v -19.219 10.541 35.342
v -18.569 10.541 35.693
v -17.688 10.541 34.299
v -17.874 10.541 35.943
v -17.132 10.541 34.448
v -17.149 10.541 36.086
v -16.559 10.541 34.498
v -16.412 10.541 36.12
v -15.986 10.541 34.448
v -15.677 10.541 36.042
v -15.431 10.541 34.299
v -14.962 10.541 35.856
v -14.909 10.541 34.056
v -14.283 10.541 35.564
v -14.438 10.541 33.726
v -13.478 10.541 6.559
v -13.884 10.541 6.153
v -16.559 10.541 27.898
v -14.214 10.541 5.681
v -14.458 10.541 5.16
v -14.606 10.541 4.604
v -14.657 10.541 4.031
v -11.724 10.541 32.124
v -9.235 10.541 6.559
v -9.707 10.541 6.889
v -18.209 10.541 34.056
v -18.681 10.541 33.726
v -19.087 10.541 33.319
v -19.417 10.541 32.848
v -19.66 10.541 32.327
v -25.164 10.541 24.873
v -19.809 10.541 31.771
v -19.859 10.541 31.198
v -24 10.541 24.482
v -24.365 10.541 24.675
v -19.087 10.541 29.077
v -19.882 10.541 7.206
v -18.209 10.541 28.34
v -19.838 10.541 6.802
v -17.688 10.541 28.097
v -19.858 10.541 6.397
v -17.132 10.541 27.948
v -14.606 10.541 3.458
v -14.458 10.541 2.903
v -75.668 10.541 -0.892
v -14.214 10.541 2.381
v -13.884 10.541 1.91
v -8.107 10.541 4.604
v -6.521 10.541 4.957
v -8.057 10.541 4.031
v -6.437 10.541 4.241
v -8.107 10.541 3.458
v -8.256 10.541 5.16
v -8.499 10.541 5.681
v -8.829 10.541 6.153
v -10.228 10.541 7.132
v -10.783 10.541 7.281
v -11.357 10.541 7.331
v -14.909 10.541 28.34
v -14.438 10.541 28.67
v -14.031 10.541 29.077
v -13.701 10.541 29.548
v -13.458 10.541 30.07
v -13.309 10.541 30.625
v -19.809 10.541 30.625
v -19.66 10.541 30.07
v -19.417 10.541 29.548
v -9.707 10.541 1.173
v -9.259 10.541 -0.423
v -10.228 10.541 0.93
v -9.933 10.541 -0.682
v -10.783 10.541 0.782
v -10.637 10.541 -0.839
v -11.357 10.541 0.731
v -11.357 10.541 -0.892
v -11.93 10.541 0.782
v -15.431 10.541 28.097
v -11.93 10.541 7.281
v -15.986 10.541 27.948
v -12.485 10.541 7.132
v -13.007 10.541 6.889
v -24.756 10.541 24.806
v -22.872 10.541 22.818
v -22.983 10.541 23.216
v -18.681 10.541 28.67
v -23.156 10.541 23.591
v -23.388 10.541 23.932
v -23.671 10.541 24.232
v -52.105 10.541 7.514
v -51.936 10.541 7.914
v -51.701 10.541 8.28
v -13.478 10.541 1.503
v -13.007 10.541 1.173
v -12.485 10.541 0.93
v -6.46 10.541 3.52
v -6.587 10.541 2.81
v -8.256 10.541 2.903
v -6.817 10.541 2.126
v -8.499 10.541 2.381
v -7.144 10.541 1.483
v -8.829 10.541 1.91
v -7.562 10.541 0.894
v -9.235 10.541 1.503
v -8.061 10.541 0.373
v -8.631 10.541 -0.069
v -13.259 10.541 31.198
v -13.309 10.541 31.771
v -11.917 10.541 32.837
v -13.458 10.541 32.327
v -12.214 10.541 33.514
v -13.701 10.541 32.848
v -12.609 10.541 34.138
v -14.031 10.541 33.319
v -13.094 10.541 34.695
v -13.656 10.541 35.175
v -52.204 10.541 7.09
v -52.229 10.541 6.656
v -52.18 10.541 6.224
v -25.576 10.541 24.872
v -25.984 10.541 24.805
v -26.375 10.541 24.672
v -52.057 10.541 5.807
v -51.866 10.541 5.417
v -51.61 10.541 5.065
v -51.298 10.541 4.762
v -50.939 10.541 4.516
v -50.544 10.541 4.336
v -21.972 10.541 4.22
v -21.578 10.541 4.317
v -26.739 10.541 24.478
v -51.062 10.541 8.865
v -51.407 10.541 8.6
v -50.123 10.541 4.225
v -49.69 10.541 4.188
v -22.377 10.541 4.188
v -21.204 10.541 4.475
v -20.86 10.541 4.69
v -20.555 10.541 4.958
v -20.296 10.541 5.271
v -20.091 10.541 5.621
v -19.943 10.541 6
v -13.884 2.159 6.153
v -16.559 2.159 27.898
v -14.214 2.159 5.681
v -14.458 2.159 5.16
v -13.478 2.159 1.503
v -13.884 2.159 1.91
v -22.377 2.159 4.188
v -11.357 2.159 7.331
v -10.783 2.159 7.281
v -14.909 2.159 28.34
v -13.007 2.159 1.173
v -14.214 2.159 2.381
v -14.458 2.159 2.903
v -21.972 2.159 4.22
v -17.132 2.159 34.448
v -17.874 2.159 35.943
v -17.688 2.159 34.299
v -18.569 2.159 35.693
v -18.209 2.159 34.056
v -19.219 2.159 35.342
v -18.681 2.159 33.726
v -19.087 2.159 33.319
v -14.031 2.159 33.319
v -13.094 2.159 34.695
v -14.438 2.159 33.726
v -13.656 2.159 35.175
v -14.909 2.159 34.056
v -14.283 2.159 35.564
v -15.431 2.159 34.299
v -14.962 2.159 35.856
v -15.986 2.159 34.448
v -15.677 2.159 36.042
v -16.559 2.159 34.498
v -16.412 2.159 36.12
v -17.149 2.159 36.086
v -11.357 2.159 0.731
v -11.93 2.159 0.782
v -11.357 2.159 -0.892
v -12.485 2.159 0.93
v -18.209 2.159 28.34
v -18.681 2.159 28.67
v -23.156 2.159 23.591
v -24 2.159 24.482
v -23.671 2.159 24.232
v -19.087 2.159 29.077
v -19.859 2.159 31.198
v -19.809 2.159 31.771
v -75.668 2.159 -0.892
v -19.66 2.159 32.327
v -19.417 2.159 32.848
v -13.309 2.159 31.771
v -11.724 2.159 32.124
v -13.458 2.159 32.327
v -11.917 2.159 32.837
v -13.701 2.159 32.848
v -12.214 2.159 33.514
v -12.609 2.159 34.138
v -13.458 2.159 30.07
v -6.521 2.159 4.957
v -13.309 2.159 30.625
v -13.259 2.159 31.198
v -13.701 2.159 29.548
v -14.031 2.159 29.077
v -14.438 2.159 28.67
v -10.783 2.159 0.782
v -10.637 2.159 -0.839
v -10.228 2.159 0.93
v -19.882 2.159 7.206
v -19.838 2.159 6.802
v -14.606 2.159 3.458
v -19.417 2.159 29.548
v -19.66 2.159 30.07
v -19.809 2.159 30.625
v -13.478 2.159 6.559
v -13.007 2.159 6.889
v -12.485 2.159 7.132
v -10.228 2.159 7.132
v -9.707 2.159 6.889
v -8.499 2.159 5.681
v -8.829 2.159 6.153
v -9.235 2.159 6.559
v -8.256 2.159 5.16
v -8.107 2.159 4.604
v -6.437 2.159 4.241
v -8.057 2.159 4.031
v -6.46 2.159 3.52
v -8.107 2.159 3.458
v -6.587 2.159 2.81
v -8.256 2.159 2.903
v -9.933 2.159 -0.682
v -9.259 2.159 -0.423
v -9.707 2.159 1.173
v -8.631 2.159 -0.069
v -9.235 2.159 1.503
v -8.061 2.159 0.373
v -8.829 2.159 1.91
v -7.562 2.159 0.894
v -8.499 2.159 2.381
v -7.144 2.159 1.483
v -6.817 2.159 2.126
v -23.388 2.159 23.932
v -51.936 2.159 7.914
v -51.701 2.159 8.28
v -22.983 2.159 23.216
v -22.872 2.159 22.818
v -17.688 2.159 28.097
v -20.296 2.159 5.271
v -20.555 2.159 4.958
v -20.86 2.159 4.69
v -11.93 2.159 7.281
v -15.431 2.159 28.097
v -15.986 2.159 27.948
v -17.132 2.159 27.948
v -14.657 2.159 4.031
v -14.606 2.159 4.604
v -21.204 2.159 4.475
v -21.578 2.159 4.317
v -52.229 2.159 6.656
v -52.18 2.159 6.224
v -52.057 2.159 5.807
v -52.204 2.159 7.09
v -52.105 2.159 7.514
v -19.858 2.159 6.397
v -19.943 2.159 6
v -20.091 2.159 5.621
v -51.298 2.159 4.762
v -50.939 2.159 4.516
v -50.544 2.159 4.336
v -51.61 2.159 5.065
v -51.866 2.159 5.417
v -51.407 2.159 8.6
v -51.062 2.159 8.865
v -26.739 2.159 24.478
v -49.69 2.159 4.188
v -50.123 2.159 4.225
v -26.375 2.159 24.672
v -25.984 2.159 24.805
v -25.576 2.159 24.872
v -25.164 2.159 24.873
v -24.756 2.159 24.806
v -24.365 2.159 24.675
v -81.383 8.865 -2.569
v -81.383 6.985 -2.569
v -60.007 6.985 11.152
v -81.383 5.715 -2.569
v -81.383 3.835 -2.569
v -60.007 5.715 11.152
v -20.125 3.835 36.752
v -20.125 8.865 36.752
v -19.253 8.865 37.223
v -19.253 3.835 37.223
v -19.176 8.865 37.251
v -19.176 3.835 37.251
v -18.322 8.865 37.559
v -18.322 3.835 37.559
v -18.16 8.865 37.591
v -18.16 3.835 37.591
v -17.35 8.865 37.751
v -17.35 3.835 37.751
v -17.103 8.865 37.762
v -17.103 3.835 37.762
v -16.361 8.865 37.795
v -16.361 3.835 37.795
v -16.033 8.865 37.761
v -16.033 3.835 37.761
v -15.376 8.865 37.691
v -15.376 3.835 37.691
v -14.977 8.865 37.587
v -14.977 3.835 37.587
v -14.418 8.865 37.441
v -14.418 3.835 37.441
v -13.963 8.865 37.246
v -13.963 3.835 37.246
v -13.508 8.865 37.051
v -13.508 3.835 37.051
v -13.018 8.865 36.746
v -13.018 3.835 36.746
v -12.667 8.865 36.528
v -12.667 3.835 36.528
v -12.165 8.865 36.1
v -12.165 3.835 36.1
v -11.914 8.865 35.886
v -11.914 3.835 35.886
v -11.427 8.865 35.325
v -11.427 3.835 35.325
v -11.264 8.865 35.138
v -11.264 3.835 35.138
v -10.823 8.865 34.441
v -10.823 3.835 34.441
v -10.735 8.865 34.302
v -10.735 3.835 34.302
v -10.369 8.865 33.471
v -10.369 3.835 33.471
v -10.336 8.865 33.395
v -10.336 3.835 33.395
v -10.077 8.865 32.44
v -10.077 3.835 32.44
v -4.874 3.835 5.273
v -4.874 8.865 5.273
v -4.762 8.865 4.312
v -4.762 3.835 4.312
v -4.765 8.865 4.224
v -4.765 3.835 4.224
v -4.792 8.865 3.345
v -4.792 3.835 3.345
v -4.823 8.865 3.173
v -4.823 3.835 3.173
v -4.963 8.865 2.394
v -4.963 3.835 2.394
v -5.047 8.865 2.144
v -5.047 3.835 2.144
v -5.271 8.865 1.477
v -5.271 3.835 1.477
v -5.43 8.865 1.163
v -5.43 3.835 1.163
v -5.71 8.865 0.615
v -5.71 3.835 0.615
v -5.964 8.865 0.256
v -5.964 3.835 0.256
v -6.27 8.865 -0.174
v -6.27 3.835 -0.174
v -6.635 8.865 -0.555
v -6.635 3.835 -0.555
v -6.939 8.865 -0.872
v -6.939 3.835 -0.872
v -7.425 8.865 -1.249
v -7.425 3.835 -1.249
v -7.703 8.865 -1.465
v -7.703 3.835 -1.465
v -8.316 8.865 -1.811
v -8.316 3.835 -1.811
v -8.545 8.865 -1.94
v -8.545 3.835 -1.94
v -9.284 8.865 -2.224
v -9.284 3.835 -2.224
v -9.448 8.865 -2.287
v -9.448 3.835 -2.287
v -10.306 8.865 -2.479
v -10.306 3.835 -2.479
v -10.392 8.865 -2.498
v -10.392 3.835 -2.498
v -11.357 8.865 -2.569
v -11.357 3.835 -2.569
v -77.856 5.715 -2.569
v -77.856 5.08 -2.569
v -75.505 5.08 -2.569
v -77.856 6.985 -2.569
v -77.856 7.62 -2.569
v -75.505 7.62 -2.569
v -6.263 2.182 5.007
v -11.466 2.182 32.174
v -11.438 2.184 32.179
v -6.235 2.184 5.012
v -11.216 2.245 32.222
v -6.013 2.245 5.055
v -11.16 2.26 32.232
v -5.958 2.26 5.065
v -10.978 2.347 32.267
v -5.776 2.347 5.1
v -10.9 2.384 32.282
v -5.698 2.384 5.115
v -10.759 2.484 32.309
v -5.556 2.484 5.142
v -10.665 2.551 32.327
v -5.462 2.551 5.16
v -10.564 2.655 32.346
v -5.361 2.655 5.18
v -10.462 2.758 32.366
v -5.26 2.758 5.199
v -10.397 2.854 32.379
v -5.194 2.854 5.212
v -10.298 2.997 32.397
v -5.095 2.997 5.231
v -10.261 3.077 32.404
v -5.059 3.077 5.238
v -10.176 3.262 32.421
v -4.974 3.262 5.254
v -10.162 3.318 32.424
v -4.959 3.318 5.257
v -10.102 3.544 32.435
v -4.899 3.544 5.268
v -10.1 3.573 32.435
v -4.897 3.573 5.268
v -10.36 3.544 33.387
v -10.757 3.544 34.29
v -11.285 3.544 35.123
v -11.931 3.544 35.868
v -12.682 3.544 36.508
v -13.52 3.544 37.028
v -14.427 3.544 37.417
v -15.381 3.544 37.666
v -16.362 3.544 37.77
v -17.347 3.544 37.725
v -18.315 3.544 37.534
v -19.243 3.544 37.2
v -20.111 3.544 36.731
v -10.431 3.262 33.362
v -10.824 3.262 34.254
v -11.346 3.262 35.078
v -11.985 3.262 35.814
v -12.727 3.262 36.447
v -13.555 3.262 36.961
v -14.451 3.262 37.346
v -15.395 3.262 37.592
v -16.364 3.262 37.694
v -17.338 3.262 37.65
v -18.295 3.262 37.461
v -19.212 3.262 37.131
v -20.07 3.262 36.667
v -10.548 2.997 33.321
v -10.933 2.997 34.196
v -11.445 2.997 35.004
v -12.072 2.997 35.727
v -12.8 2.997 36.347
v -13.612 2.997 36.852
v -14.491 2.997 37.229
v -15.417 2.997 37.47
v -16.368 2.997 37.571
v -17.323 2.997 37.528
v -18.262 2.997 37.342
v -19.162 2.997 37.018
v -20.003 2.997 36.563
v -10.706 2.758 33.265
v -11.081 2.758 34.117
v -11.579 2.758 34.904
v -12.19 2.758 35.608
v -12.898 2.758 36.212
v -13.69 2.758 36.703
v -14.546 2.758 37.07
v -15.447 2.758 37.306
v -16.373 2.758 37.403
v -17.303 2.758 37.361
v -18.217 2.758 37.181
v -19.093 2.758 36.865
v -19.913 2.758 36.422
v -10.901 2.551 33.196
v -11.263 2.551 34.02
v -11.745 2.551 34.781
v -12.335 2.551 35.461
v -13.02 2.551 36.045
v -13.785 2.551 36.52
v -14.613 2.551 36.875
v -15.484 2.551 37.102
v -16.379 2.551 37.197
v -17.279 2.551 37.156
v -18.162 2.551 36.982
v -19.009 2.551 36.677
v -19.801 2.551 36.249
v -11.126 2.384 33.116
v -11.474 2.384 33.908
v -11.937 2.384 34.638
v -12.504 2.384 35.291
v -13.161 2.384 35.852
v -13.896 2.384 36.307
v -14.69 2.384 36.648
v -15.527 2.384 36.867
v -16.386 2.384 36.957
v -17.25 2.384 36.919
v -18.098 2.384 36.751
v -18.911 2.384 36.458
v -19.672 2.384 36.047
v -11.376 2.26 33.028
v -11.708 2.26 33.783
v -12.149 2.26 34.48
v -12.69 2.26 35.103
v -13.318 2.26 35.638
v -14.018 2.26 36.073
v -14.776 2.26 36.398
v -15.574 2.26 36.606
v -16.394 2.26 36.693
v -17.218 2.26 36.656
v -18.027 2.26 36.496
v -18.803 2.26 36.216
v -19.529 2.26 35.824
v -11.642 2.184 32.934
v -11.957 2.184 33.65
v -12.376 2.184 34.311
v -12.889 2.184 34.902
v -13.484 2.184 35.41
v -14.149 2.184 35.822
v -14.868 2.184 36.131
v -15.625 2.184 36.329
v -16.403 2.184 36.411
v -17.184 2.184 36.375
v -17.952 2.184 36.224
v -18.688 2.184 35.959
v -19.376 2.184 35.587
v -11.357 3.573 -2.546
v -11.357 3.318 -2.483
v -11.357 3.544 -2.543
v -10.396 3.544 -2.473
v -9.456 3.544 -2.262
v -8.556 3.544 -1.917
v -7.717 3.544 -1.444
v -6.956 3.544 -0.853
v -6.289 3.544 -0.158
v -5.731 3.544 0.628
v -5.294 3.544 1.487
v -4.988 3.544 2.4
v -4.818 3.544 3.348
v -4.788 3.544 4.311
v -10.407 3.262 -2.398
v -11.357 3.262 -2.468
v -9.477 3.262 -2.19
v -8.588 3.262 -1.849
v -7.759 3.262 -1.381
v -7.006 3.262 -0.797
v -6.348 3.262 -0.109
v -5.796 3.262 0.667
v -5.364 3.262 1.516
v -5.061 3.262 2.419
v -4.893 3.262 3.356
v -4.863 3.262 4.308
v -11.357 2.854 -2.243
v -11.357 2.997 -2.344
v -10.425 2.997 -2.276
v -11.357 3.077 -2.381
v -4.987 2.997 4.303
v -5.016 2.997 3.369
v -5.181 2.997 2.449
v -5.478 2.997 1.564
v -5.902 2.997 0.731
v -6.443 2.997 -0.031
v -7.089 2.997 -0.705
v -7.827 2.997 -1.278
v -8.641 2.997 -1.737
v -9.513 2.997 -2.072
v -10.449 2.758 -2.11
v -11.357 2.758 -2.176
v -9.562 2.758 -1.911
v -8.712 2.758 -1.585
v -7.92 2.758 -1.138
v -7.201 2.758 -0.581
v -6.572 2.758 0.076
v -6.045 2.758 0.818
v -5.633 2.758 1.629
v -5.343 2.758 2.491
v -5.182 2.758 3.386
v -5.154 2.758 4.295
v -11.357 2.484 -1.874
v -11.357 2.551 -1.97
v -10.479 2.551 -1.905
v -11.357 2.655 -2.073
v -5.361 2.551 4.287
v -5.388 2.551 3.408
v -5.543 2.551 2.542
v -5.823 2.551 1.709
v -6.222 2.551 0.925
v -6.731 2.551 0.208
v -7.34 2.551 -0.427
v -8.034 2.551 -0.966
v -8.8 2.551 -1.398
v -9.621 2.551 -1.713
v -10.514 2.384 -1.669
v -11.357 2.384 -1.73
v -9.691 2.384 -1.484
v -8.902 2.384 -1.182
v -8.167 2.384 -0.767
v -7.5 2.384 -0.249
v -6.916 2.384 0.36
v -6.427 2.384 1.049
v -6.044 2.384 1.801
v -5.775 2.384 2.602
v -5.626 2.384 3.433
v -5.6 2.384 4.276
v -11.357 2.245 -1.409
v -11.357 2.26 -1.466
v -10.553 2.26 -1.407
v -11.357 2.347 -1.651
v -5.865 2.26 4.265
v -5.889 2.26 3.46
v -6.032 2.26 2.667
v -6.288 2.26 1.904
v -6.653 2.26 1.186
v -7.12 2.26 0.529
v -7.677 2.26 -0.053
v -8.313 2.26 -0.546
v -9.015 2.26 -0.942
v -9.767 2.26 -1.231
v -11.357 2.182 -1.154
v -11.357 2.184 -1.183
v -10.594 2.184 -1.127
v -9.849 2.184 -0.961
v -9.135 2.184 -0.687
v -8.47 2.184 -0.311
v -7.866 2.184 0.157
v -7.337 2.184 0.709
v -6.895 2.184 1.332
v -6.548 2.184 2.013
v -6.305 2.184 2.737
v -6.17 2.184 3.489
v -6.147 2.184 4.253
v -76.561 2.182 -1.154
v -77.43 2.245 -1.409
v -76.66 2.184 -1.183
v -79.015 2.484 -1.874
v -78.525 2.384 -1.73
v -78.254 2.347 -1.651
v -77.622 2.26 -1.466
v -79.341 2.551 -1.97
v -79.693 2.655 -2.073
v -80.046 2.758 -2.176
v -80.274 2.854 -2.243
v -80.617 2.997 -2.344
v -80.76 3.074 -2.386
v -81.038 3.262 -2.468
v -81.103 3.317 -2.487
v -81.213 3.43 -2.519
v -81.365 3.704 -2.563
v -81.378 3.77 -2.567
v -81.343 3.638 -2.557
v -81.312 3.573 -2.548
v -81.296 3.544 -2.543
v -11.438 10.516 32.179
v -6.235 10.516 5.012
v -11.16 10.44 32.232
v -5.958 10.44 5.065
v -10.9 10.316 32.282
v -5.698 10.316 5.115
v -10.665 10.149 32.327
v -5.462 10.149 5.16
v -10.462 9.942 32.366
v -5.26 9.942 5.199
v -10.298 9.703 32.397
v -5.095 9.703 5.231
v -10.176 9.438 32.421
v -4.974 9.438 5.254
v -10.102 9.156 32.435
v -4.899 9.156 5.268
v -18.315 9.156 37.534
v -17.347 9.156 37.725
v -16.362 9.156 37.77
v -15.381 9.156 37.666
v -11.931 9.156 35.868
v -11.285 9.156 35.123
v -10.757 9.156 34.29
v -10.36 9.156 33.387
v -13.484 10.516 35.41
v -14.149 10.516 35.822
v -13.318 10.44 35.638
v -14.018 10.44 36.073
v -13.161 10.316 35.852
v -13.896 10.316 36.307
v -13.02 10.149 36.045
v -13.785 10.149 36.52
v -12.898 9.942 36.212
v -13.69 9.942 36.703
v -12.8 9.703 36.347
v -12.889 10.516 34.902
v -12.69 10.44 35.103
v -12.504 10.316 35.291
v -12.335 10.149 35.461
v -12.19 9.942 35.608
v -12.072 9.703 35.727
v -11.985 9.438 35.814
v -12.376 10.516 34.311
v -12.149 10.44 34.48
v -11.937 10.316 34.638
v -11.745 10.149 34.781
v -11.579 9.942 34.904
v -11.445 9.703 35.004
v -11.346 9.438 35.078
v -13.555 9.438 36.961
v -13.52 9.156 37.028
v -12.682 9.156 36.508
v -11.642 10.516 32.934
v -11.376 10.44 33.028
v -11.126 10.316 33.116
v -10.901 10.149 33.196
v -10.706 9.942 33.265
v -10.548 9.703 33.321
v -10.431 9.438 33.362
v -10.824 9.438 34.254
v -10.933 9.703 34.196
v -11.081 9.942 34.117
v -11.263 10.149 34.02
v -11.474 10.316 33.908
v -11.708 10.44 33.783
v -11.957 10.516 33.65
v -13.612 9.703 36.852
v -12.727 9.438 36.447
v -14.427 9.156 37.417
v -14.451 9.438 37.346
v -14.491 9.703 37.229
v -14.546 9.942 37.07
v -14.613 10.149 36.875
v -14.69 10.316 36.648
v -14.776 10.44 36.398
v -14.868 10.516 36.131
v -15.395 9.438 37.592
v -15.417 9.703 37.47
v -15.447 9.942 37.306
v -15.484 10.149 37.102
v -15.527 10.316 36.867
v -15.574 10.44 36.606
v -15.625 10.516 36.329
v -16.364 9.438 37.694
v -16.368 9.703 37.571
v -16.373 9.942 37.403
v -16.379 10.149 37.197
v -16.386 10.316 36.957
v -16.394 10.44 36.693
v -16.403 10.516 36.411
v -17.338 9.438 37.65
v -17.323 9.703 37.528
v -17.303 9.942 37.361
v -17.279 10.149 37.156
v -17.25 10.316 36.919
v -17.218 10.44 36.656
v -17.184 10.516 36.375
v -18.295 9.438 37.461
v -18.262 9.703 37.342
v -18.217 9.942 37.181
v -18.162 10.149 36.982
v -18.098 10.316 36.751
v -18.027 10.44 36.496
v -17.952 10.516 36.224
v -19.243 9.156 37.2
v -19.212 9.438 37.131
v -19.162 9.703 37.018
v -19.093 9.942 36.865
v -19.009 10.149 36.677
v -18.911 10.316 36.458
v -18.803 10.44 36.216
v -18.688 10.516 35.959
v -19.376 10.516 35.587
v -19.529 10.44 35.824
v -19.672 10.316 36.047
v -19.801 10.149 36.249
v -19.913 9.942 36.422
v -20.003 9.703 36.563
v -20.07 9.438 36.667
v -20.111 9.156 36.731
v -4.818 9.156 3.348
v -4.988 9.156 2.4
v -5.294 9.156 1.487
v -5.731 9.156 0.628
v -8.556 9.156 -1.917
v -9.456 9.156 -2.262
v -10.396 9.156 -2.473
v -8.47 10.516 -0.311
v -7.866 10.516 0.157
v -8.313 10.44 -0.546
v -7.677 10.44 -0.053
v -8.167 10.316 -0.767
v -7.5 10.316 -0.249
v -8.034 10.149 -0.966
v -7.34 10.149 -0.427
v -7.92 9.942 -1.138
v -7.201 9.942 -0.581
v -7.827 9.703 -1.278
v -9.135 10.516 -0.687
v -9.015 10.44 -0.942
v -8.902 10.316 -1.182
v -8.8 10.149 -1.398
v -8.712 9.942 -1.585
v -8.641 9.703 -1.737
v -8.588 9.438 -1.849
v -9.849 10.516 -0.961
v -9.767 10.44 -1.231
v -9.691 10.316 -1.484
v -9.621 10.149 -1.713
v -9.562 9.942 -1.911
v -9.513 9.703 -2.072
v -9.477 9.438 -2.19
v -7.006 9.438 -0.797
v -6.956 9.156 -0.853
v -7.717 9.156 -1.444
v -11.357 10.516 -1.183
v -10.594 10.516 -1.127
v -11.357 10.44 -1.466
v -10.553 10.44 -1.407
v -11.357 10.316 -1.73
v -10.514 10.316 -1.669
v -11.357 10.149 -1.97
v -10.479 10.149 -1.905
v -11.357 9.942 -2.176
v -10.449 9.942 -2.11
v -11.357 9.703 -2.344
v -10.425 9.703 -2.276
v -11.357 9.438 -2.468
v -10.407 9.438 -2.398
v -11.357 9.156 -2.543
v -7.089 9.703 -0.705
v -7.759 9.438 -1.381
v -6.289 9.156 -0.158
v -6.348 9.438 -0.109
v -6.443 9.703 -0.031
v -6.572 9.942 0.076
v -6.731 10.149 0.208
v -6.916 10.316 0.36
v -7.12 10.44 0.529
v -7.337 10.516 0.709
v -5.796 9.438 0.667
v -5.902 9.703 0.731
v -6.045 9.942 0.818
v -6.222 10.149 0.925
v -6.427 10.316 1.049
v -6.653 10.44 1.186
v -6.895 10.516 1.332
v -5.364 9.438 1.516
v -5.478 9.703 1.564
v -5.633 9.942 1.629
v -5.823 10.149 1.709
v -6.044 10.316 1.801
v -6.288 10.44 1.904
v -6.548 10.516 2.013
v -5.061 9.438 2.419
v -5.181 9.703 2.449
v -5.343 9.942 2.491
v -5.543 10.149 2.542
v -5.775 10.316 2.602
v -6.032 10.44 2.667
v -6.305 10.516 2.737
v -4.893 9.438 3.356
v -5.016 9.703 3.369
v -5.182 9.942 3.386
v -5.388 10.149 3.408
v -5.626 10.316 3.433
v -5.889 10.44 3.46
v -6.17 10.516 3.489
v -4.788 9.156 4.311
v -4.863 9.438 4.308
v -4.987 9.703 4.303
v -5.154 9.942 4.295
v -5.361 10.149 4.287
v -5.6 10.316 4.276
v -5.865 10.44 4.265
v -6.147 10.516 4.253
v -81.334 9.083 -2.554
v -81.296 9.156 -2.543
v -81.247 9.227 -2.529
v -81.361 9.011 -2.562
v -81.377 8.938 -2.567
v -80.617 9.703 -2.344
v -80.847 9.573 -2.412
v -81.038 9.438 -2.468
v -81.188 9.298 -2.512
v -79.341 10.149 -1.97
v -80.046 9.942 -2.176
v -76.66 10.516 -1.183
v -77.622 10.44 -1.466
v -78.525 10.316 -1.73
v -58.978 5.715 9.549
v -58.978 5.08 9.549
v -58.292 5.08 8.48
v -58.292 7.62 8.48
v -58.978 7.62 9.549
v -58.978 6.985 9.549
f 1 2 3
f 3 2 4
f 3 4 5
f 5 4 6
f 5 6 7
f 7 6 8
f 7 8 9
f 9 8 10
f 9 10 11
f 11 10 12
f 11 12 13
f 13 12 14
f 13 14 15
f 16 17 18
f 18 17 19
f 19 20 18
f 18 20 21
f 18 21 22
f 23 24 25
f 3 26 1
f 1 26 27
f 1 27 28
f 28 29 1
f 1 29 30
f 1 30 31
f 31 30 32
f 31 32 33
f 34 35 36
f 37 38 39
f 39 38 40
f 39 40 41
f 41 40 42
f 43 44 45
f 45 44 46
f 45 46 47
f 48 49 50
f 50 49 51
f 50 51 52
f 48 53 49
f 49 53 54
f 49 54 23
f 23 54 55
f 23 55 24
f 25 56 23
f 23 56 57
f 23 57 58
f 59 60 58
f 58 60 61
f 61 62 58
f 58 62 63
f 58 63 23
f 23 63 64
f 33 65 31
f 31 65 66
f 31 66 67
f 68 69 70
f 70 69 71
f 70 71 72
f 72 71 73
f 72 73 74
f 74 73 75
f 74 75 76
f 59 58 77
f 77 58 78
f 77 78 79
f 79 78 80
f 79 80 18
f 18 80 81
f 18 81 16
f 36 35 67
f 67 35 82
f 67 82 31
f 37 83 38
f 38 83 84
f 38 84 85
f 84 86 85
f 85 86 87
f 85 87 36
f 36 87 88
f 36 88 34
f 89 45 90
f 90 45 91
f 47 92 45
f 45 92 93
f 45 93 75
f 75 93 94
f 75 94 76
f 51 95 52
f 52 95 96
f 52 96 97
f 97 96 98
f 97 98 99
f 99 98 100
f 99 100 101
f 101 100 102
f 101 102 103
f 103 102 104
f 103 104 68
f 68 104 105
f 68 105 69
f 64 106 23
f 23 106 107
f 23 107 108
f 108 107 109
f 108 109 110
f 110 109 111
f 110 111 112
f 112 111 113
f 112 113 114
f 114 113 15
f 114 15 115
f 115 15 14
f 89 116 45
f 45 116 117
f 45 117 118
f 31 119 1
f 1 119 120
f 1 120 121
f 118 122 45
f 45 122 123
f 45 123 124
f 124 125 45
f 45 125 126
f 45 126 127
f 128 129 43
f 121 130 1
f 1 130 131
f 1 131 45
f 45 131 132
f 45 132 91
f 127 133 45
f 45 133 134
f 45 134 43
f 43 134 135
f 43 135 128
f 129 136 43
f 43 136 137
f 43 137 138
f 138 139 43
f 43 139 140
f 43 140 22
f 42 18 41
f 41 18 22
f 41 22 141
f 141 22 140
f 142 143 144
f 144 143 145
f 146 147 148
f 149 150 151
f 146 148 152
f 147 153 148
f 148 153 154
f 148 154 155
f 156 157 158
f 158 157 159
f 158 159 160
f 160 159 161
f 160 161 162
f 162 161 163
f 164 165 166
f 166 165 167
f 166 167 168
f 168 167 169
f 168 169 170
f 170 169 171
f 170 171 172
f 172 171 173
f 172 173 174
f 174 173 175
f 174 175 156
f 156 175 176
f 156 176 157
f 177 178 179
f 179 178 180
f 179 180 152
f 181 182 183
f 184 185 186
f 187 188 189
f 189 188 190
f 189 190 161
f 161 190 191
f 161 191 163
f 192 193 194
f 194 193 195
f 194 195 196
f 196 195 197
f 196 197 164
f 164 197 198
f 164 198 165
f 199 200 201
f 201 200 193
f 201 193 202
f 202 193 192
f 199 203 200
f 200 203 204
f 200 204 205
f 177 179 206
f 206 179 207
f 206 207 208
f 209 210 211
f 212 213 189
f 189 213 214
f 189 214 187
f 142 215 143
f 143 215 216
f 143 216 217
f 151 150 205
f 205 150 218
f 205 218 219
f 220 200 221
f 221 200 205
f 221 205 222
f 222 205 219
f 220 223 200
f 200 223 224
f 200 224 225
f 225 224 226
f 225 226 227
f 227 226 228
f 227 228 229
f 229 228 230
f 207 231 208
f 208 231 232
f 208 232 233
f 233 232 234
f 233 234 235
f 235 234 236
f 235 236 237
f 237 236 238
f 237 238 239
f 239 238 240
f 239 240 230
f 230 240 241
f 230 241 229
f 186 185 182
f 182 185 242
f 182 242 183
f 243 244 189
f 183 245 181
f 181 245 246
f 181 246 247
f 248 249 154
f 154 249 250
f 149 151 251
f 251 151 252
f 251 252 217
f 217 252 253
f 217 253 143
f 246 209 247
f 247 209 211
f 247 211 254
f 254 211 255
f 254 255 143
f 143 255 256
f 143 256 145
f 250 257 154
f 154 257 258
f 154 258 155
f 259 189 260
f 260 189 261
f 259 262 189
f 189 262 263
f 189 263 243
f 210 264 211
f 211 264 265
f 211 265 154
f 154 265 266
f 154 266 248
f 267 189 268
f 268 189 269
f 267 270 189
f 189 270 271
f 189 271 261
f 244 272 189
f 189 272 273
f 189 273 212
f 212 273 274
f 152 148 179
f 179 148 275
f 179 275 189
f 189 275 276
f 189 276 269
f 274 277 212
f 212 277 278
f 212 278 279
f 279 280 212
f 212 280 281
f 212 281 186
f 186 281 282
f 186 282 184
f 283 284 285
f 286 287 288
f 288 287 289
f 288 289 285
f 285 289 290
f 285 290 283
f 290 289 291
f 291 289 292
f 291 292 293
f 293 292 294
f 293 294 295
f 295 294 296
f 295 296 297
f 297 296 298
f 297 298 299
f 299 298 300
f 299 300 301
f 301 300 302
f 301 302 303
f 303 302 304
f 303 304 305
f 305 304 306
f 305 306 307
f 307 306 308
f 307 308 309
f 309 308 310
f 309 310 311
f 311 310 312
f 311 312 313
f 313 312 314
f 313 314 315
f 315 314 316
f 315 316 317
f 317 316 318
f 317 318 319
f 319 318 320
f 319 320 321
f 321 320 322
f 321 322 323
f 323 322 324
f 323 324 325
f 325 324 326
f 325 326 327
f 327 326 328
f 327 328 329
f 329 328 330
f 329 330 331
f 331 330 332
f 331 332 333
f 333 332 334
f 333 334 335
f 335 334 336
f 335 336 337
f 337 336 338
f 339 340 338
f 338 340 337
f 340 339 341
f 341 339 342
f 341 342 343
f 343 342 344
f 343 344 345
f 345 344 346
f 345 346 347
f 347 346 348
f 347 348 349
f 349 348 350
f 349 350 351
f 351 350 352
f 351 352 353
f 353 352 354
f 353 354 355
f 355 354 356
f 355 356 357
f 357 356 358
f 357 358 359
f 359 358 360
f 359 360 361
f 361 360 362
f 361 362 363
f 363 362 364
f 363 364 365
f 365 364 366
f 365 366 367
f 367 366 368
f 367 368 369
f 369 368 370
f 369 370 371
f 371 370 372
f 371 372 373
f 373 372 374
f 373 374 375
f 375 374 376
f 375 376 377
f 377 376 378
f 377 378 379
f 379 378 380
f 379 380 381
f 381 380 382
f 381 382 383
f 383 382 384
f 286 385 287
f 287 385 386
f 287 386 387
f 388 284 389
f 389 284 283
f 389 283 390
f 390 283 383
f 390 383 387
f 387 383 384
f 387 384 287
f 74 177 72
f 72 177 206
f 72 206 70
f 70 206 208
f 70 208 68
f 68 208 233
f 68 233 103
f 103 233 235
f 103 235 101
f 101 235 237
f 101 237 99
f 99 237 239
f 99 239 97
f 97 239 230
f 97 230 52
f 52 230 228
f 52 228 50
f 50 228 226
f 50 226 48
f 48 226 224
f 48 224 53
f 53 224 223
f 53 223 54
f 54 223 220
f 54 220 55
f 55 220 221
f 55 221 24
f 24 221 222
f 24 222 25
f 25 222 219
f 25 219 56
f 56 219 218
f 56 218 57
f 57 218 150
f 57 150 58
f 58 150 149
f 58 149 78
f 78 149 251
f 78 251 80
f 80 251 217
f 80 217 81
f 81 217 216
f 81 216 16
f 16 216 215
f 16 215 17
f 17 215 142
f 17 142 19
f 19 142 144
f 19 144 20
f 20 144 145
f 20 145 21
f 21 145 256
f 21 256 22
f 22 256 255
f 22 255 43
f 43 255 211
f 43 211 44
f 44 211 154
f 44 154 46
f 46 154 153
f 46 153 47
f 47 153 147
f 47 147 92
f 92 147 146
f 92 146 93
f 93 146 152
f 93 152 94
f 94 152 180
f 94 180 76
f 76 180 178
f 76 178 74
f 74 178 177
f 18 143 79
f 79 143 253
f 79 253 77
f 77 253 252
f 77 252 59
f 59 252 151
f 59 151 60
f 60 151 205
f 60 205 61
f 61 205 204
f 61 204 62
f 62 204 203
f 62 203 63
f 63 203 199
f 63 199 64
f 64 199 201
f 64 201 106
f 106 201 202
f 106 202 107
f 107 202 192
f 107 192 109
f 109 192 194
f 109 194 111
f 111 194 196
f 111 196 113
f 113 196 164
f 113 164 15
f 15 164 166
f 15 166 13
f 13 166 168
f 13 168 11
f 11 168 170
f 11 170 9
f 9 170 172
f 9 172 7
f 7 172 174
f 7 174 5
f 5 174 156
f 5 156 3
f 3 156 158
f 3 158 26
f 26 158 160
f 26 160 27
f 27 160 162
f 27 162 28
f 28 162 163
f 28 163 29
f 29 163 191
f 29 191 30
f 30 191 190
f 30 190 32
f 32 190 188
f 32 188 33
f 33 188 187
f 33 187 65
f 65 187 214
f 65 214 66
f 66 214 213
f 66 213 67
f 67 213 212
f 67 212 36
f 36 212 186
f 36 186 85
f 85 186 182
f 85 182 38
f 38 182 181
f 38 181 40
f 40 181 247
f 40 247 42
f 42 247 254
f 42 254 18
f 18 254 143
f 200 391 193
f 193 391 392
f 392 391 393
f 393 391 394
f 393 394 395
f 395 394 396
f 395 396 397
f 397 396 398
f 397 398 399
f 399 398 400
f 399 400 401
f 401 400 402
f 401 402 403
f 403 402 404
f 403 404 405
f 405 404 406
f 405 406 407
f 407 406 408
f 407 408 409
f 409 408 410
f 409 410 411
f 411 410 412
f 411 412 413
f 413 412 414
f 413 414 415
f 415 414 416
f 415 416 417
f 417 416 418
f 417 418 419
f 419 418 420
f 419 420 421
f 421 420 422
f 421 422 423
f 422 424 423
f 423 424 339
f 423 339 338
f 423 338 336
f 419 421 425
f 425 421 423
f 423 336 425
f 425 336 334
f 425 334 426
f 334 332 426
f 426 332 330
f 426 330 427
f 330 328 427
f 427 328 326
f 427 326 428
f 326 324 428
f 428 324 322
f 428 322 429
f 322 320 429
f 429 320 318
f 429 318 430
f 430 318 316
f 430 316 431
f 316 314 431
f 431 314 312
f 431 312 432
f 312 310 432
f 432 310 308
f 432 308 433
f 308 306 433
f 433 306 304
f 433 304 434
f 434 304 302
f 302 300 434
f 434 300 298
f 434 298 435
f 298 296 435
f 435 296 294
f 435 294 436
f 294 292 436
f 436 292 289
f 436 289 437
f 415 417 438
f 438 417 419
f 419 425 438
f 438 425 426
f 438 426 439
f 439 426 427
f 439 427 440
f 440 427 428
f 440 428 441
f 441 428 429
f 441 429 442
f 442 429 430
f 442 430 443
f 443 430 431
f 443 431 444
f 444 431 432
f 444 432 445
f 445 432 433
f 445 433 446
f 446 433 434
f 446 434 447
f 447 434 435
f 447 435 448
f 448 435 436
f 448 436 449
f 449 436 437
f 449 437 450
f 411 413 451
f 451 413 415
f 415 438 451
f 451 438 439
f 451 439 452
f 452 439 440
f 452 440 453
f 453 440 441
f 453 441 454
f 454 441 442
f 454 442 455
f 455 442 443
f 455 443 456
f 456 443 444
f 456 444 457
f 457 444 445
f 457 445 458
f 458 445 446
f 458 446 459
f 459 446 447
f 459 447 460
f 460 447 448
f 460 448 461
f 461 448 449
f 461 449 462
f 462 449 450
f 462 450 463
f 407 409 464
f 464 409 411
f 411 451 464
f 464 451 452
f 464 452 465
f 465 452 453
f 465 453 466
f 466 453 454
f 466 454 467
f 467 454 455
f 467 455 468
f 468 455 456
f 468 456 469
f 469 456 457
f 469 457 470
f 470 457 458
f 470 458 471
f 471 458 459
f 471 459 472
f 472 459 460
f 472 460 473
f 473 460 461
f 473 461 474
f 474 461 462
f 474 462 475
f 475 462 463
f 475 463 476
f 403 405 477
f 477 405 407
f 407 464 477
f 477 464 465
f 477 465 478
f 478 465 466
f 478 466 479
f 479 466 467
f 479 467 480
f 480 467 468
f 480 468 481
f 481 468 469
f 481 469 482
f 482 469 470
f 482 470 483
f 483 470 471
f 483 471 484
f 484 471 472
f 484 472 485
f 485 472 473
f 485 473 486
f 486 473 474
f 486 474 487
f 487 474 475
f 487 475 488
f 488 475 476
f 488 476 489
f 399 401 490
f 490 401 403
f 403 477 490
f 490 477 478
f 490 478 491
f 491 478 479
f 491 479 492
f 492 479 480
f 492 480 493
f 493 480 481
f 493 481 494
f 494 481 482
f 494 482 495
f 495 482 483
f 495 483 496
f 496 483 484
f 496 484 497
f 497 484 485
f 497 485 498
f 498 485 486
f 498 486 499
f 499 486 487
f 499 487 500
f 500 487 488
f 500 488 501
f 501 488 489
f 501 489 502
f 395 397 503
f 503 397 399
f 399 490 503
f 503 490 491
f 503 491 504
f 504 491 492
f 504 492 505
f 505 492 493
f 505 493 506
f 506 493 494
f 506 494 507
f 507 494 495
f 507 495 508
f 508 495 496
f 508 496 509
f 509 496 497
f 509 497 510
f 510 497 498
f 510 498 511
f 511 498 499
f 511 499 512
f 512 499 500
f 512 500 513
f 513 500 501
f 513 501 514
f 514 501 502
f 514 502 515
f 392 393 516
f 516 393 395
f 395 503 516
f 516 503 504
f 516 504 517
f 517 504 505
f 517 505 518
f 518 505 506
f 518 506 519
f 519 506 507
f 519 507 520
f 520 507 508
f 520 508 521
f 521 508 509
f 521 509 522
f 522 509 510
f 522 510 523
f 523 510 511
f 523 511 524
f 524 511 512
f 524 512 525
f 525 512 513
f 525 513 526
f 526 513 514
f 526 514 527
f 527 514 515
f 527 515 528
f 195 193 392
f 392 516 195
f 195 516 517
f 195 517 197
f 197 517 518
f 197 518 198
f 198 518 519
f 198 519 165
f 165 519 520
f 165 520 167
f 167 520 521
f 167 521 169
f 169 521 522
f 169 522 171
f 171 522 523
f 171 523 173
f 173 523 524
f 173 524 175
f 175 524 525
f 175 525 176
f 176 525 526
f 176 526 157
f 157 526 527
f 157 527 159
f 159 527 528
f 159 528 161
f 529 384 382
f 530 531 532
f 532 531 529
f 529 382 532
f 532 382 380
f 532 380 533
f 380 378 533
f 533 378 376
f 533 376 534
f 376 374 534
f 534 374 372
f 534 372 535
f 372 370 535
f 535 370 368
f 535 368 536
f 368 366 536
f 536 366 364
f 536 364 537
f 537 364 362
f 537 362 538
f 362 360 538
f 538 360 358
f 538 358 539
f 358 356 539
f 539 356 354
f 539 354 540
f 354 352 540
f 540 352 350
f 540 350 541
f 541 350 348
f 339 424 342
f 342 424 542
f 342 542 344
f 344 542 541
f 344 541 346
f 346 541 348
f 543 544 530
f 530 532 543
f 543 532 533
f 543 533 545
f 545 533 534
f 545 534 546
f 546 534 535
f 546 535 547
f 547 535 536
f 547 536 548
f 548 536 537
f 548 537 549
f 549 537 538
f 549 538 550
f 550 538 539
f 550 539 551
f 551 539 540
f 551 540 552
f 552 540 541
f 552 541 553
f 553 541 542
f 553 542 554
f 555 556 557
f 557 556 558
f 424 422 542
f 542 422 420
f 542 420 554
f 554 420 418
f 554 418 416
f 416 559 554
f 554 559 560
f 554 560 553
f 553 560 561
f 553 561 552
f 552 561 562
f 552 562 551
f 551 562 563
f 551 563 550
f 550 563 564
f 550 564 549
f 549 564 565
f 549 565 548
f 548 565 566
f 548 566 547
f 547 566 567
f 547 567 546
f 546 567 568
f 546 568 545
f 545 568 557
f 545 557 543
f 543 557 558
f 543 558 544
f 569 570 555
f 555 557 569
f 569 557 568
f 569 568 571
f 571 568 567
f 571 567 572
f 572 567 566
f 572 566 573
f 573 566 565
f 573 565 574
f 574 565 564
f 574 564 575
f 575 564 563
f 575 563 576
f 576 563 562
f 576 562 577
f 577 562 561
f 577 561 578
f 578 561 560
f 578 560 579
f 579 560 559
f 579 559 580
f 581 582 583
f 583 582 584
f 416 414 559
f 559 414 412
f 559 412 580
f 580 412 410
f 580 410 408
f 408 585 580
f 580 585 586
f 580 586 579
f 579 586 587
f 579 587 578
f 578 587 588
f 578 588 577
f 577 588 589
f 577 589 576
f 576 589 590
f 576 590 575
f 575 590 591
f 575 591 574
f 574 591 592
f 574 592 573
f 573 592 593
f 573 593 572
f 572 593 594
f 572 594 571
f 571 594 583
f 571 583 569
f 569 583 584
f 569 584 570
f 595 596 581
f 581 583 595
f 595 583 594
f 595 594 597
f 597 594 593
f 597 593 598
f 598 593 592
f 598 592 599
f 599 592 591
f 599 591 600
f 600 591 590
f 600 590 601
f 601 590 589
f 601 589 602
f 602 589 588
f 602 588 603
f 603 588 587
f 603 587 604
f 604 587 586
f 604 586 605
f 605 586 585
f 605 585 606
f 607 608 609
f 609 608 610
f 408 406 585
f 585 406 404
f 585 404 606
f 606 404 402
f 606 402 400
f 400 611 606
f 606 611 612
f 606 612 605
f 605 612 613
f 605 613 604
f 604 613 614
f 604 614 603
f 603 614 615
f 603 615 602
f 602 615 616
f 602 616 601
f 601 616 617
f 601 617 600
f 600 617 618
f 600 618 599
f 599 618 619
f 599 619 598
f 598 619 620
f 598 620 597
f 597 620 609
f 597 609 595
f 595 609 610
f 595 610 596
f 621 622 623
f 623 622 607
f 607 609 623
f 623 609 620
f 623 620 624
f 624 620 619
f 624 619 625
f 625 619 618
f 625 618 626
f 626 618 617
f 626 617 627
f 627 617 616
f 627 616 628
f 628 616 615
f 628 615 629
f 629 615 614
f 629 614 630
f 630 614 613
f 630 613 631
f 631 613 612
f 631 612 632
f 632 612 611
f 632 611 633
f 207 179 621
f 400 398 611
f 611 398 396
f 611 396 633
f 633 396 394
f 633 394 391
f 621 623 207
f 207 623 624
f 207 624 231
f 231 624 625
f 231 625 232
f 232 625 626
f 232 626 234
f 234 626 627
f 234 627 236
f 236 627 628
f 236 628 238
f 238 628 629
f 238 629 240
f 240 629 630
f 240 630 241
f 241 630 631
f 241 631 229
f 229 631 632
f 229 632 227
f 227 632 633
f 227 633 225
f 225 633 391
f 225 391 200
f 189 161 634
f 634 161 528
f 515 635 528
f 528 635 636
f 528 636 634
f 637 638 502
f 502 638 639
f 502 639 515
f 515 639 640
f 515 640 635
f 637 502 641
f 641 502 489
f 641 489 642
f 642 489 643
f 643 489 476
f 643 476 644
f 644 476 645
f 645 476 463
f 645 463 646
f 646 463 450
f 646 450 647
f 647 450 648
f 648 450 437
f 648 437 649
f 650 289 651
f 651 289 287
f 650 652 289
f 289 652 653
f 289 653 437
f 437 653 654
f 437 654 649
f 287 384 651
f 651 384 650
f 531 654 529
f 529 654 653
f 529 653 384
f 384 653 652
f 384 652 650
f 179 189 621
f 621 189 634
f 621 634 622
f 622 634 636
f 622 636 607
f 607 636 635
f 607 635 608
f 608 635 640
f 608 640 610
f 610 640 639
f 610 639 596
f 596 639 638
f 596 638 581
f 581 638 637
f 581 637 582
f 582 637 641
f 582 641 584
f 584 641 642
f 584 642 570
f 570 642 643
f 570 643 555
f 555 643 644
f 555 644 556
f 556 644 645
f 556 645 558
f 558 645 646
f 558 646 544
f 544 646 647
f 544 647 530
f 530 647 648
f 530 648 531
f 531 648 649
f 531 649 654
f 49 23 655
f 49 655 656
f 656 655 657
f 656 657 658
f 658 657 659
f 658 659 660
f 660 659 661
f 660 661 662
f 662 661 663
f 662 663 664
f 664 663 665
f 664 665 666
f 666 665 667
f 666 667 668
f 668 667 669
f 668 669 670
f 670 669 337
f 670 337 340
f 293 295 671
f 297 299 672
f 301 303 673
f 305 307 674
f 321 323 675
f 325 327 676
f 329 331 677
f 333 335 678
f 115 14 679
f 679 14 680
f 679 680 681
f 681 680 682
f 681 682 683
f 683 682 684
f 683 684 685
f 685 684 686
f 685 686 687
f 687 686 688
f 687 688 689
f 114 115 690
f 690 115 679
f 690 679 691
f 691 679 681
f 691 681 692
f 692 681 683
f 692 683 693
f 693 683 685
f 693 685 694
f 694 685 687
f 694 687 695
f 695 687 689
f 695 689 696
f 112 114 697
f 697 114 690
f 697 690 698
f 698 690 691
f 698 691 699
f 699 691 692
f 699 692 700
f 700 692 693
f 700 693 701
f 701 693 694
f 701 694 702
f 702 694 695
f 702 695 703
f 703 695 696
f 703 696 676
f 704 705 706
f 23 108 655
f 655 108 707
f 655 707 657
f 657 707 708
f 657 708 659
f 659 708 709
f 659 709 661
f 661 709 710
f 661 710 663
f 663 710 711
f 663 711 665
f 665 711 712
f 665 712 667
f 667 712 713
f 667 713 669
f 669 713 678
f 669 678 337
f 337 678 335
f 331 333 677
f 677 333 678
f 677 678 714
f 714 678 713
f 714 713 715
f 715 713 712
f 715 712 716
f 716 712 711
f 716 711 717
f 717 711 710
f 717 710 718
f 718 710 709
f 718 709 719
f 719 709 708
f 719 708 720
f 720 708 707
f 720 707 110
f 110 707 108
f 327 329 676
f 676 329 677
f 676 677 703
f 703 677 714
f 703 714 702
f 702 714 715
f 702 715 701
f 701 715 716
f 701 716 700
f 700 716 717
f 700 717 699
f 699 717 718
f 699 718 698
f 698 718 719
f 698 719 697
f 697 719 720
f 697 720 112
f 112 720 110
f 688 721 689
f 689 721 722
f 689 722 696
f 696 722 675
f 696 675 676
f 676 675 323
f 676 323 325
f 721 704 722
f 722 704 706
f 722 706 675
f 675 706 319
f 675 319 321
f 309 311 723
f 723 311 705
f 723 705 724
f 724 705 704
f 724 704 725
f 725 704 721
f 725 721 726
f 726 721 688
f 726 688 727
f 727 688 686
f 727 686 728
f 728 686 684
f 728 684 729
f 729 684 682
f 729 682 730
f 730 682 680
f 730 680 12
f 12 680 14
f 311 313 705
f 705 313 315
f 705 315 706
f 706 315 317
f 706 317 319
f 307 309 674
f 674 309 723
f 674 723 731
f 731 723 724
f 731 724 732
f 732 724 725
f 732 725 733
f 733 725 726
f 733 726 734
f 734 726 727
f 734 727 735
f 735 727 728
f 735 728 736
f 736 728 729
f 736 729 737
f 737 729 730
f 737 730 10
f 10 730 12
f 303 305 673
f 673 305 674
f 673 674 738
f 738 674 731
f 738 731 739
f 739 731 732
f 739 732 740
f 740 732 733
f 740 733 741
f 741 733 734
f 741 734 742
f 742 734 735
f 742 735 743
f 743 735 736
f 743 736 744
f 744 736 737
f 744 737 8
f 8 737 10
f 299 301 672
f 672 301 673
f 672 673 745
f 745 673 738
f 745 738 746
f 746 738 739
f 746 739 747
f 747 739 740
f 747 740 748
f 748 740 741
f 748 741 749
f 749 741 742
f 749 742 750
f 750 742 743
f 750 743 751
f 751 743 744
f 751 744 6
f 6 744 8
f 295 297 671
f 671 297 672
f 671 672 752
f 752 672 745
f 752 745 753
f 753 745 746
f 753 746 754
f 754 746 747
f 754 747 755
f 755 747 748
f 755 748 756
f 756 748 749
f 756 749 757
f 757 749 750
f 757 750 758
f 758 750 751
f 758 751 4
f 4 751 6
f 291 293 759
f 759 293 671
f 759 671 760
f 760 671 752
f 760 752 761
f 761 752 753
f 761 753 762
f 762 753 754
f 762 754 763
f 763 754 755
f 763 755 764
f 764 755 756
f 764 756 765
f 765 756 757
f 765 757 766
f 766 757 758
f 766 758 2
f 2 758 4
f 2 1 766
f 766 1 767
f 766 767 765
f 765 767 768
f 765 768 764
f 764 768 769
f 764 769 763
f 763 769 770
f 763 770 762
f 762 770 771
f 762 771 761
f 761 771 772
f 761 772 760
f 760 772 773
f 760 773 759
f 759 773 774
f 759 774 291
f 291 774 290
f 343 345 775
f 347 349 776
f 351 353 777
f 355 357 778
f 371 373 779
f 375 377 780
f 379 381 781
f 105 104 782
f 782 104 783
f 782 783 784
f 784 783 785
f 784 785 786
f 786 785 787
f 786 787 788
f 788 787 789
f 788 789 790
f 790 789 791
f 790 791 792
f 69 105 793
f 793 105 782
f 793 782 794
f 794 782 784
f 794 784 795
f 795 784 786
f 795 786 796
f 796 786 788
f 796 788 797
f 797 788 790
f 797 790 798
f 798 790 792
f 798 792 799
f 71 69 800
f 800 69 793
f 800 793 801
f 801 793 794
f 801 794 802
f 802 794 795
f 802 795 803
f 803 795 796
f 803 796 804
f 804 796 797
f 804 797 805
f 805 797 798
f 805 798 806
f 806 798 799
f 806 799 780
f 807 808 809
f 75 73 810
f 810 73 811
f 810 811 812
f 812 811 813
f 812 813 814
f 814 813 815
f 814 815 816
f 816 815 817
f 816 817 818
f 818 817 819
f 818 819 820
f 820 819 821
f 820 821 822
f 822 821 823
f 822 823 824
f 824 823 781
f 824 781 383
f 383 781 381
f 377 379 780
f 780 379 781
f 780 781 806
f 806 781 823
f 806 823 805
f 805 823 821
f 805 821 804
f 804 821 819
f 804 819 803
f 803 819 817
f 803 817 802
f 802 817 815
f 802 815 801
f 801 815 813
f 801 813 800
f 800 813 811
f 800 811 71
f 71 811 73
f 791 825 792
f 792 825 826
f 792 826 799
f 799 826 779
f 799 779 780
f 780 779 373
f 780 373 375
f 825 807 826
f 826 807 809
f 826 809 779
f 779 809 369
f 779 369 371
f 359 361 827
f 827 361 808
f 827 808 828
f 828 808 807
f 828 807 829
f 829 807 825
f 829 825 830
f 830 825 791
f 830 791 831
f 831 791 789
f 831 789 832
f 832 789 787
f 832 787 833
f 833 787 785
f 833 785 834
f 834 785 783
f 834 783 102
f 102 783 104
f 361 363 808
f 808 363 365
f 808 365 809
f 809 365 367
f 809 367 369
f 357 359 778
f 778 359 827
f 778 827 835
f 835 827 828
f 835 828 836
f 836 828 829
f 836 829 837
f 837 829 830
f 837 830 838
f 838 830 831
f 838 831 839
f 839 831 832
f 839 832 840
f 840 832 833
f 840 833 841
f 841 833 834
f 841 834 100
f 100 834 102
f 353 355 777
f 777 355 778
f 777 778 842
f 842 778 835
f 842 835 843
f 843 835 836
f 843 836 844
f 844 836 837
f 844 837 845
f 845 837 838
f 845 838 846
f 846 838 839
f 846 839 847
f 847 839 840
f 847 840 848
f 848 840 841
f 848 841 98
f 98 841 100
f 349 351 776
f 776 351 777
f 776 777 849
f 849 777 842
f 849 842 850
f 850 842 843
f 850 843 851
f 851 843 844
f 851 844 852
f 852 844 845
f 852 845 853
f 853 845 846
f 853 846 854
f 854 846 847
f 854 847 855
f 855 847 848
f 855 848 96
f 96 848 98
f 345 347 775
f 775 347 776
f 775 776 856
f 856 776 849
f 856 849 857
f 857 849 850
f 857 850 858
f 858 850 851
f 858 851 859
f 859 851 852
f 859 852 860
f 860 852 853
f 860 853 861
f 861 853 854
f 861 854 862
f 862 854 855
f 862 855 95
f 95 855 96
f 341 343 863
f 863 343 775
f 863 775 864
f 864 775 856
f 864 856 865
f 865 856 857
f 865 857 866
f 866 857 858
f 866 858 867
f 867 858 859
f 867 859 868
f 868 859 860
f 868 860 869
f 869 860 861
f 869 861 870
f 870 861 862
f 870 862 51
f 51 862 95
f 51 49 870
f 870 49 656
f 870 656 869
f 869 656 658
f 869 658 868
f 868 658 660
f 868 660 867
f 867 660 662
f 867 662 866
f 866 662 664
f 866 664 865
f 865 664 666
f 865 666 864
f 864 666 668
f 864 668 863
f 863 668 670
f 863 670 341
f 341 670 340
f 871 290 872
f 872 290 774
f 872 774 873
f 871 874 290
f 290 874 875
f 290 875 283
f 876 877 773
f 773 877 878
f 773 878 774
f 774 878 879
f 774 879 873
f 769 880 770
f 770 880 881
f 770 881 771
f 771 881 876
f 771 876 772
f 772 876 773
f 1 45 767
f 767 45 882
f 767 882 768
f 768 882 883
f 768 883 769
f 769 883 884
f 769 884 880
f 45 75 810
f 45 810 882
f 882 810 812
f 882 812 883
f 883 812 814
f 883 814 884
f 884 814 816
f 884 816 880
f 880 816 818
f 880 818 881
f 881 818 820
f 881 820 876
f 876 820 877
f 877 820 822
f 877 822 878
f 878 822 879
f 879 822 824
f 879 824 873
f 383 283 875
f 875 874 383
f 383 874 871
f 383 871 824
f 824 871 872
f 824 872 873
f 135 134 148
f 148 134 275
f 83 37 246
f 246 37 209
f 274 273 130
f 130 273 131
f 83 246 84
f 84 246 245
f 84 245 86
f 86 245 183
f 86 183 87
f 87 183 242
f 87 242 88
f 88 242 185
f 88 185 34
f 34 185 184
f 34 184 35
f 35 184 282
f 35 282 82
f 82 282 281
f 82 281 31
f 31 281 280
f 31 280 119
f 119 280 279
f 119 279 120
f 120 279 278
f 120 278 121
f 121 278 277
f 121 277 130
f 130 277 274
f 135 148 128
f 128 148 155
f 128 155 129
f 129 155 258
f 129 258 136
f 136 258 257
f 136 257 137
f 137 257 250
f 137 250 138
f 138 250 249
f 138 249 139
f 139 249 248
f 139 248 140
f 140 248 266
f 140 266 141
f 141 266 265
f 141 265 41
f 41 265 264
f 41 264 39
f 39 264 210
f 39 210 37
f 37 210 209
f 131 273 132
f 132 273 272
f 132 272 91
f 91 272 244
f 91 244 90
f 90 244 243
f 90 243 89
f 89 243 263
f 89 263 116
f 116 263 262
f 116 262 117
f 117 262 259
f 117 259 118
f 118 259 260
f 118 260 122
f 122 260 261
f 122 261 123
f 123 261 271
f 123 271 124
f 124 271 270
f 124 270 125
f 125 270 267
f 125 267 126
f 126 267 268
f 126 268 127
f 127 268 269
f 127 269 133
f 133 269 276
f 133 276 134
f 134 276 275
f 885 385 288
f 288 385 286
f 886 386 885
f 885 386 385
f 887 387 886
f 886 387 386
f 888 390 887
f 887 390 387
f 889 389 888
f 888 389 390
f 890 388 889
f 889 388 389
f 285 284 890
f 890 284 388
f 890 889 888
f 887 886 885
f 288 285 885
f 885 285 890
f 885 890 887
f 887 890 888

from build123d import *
from OCP.BRepAlgoAPI import BRepAlgoAPI_Cut
from OCP.TopTools import TopTools_ListOfShape

# Parameters (mm, degrees)
SKETCH1_R           = 5
BOSS_EXTRUDE1_DEPTH = 12.7
FILLET1_R           = 2.54
SCALE1_SCALE        = 0.66
CUT_EXTRUDE1_DEPTH  = 91.122674363
FILLET2_R           = 2.54
CUT_EXTRUDE2_DEPTH  = 25.4


with BuildPart() as part:
    # Sketch1 → Boss-Extrude1 (new body)
    with BuildSketch(Plane(origin=(0, 0, 0), x_dir=(1, 0, 0), z_dir=(0, 1, 0))):
        with BuildLine():
            Line((-77.410829365, -8.41547619), (-13.284900793, -49.577415951))
            ThreePointArc((-13.284900793, -49.577415951), (-3.938658922, -50.351151369), (1.938436508, -43.042892142))
            Line((1.938436508, -43.042892142), (9.821507936, -1.880952381))
            ThreePointArc((9.821507936, -1.880952381), (7.707448469, 6.371439248), (0, 10))
            Line((0, 10), (-72.009, 10))
            Line((-72.009, 10), (-106.100184572, 10))
            Line((-106.100184572, 10), (-77.410829365, -8.41547619))
        make_face()
        Circle(SKETCH1_R, mode=Mode.SUBTRACT)
        with Locations((-7.883071429, -41.161939761)):
            Circle(SKETCH1_R, mode=Mode.SUBTRACT)
    extrude(amount=BOSS_EXTRUDE1_DEPTH)

    # Fillet1
    fillet1_edges = [part.edges().sort_by_distance(p)[0] for p in [
        (-53.050092286, 0, -10),
        (7.707448469, 0, -6.371439248),
        (5.879972222, 0, 22.461922261),
        (-3.938658922, 0, 50.351151369),
        (-53.050092286, 12.7, -10),
        (7.707448469, 12.7, -6.371439248),
        (5.879972222, 12.7, 22.461922261),
        (-3.938658922, 12.7, 50.351151369),
        (-59.692542683, 0, 19.788707976),
        (-59.692542683, 12.7, 19.788707976),
    ]]
    fillet(fillet1_edges, radius=FILLET1_R)


with BuildPart() as part_1:
    # Scale1: scaled about (-33.401454618, 6.35, 11.856994793)
    add(part.part.scale(SCALE1_SCALE).moved(Location((-11.35649457, 2.159, 4.03137823))))


with BuildPart() as cut_extrude1_tool:
    # Sketch2 → Cut-Extrude1 (new, through all)
    with BuildSketch(Plane(origin=(0, 10.540994585, 0), x_dir=(1, 0, 0), z_dir=(0, 1, 0))):
        Polygon((-58.349296315, -4.187754758), (-23.578618247, -26.506785264), (-19.304220279, -4.187754758), align=None)
    extrude(amount=-CUT_EXTRUDE1_DEPTH)


with BuildPart() as part_2:
    add(part_1.part)

    # Cut-Extrude1: cut by cut_extrude1_tool, with a tolerance
    cut_extrude1_stock = TopTools_ListOfShape()
    cut_extrude1_stock.Append(part_2.part.wrapped)
    cut_extrude1_tools = TopTools_ListOfShape()
    cut_extrude1_tools.Append(cut_extrude1_tool.part.wrapped)
    cut_extrude1_cut = BRepAlgoAPI_Cut()
    cut_extrude1_cut.SetArguments(cut_extrude1_stock)
    cut_extrude1_cut.SetTools(cut_extrude1_tools)
    cut_extrude1_cut.SetFuzzyValue(0.00001)
    cut_extrude1_cut.Build()
    add(Compound.cast(cut_extrude1_cut.Shape()).solids(), mode=Mode.REPLACE)

    # Fillet2
    fillet2_edges = [part_2.edges().sort_by_distance(p)[0] for p in [
        (-23.578618247, 6.349997293, 26.506785264),
        (-19.304220279, 6.349997293, 4.187754758),
        (-58.349296315, 6.349997293, 4.187754758),
    ]]
    fillet(fillet2_edges, radius=FILLET2_R)

    # Sketch3 → Cut-Extrude2 (cut)
    with BuildSketch(Plane(origin=(-58.803077328, 0, -37.745242535), x_dir=(0, -1, 0), z_dir=(-0.841547619047619, 0, -0.5401829364902999))):
        Polygon((-5.714994585, 41.799889271), (-5.714994585, 39.894889271), (-5.079994585, 39.894889271), (-5.079994585, 38.624889271), (-7.619994585, 38.624889271), (-7.619994585, 39.894889271), (-6.984994585, 39.894889271), (-6.984994585, 41.799889271), align=None)
    extrude(amount=-CUT_EXTRUDE2_DEPTH, mode=Mode.SUBTRACT)


solid = part_2.part
